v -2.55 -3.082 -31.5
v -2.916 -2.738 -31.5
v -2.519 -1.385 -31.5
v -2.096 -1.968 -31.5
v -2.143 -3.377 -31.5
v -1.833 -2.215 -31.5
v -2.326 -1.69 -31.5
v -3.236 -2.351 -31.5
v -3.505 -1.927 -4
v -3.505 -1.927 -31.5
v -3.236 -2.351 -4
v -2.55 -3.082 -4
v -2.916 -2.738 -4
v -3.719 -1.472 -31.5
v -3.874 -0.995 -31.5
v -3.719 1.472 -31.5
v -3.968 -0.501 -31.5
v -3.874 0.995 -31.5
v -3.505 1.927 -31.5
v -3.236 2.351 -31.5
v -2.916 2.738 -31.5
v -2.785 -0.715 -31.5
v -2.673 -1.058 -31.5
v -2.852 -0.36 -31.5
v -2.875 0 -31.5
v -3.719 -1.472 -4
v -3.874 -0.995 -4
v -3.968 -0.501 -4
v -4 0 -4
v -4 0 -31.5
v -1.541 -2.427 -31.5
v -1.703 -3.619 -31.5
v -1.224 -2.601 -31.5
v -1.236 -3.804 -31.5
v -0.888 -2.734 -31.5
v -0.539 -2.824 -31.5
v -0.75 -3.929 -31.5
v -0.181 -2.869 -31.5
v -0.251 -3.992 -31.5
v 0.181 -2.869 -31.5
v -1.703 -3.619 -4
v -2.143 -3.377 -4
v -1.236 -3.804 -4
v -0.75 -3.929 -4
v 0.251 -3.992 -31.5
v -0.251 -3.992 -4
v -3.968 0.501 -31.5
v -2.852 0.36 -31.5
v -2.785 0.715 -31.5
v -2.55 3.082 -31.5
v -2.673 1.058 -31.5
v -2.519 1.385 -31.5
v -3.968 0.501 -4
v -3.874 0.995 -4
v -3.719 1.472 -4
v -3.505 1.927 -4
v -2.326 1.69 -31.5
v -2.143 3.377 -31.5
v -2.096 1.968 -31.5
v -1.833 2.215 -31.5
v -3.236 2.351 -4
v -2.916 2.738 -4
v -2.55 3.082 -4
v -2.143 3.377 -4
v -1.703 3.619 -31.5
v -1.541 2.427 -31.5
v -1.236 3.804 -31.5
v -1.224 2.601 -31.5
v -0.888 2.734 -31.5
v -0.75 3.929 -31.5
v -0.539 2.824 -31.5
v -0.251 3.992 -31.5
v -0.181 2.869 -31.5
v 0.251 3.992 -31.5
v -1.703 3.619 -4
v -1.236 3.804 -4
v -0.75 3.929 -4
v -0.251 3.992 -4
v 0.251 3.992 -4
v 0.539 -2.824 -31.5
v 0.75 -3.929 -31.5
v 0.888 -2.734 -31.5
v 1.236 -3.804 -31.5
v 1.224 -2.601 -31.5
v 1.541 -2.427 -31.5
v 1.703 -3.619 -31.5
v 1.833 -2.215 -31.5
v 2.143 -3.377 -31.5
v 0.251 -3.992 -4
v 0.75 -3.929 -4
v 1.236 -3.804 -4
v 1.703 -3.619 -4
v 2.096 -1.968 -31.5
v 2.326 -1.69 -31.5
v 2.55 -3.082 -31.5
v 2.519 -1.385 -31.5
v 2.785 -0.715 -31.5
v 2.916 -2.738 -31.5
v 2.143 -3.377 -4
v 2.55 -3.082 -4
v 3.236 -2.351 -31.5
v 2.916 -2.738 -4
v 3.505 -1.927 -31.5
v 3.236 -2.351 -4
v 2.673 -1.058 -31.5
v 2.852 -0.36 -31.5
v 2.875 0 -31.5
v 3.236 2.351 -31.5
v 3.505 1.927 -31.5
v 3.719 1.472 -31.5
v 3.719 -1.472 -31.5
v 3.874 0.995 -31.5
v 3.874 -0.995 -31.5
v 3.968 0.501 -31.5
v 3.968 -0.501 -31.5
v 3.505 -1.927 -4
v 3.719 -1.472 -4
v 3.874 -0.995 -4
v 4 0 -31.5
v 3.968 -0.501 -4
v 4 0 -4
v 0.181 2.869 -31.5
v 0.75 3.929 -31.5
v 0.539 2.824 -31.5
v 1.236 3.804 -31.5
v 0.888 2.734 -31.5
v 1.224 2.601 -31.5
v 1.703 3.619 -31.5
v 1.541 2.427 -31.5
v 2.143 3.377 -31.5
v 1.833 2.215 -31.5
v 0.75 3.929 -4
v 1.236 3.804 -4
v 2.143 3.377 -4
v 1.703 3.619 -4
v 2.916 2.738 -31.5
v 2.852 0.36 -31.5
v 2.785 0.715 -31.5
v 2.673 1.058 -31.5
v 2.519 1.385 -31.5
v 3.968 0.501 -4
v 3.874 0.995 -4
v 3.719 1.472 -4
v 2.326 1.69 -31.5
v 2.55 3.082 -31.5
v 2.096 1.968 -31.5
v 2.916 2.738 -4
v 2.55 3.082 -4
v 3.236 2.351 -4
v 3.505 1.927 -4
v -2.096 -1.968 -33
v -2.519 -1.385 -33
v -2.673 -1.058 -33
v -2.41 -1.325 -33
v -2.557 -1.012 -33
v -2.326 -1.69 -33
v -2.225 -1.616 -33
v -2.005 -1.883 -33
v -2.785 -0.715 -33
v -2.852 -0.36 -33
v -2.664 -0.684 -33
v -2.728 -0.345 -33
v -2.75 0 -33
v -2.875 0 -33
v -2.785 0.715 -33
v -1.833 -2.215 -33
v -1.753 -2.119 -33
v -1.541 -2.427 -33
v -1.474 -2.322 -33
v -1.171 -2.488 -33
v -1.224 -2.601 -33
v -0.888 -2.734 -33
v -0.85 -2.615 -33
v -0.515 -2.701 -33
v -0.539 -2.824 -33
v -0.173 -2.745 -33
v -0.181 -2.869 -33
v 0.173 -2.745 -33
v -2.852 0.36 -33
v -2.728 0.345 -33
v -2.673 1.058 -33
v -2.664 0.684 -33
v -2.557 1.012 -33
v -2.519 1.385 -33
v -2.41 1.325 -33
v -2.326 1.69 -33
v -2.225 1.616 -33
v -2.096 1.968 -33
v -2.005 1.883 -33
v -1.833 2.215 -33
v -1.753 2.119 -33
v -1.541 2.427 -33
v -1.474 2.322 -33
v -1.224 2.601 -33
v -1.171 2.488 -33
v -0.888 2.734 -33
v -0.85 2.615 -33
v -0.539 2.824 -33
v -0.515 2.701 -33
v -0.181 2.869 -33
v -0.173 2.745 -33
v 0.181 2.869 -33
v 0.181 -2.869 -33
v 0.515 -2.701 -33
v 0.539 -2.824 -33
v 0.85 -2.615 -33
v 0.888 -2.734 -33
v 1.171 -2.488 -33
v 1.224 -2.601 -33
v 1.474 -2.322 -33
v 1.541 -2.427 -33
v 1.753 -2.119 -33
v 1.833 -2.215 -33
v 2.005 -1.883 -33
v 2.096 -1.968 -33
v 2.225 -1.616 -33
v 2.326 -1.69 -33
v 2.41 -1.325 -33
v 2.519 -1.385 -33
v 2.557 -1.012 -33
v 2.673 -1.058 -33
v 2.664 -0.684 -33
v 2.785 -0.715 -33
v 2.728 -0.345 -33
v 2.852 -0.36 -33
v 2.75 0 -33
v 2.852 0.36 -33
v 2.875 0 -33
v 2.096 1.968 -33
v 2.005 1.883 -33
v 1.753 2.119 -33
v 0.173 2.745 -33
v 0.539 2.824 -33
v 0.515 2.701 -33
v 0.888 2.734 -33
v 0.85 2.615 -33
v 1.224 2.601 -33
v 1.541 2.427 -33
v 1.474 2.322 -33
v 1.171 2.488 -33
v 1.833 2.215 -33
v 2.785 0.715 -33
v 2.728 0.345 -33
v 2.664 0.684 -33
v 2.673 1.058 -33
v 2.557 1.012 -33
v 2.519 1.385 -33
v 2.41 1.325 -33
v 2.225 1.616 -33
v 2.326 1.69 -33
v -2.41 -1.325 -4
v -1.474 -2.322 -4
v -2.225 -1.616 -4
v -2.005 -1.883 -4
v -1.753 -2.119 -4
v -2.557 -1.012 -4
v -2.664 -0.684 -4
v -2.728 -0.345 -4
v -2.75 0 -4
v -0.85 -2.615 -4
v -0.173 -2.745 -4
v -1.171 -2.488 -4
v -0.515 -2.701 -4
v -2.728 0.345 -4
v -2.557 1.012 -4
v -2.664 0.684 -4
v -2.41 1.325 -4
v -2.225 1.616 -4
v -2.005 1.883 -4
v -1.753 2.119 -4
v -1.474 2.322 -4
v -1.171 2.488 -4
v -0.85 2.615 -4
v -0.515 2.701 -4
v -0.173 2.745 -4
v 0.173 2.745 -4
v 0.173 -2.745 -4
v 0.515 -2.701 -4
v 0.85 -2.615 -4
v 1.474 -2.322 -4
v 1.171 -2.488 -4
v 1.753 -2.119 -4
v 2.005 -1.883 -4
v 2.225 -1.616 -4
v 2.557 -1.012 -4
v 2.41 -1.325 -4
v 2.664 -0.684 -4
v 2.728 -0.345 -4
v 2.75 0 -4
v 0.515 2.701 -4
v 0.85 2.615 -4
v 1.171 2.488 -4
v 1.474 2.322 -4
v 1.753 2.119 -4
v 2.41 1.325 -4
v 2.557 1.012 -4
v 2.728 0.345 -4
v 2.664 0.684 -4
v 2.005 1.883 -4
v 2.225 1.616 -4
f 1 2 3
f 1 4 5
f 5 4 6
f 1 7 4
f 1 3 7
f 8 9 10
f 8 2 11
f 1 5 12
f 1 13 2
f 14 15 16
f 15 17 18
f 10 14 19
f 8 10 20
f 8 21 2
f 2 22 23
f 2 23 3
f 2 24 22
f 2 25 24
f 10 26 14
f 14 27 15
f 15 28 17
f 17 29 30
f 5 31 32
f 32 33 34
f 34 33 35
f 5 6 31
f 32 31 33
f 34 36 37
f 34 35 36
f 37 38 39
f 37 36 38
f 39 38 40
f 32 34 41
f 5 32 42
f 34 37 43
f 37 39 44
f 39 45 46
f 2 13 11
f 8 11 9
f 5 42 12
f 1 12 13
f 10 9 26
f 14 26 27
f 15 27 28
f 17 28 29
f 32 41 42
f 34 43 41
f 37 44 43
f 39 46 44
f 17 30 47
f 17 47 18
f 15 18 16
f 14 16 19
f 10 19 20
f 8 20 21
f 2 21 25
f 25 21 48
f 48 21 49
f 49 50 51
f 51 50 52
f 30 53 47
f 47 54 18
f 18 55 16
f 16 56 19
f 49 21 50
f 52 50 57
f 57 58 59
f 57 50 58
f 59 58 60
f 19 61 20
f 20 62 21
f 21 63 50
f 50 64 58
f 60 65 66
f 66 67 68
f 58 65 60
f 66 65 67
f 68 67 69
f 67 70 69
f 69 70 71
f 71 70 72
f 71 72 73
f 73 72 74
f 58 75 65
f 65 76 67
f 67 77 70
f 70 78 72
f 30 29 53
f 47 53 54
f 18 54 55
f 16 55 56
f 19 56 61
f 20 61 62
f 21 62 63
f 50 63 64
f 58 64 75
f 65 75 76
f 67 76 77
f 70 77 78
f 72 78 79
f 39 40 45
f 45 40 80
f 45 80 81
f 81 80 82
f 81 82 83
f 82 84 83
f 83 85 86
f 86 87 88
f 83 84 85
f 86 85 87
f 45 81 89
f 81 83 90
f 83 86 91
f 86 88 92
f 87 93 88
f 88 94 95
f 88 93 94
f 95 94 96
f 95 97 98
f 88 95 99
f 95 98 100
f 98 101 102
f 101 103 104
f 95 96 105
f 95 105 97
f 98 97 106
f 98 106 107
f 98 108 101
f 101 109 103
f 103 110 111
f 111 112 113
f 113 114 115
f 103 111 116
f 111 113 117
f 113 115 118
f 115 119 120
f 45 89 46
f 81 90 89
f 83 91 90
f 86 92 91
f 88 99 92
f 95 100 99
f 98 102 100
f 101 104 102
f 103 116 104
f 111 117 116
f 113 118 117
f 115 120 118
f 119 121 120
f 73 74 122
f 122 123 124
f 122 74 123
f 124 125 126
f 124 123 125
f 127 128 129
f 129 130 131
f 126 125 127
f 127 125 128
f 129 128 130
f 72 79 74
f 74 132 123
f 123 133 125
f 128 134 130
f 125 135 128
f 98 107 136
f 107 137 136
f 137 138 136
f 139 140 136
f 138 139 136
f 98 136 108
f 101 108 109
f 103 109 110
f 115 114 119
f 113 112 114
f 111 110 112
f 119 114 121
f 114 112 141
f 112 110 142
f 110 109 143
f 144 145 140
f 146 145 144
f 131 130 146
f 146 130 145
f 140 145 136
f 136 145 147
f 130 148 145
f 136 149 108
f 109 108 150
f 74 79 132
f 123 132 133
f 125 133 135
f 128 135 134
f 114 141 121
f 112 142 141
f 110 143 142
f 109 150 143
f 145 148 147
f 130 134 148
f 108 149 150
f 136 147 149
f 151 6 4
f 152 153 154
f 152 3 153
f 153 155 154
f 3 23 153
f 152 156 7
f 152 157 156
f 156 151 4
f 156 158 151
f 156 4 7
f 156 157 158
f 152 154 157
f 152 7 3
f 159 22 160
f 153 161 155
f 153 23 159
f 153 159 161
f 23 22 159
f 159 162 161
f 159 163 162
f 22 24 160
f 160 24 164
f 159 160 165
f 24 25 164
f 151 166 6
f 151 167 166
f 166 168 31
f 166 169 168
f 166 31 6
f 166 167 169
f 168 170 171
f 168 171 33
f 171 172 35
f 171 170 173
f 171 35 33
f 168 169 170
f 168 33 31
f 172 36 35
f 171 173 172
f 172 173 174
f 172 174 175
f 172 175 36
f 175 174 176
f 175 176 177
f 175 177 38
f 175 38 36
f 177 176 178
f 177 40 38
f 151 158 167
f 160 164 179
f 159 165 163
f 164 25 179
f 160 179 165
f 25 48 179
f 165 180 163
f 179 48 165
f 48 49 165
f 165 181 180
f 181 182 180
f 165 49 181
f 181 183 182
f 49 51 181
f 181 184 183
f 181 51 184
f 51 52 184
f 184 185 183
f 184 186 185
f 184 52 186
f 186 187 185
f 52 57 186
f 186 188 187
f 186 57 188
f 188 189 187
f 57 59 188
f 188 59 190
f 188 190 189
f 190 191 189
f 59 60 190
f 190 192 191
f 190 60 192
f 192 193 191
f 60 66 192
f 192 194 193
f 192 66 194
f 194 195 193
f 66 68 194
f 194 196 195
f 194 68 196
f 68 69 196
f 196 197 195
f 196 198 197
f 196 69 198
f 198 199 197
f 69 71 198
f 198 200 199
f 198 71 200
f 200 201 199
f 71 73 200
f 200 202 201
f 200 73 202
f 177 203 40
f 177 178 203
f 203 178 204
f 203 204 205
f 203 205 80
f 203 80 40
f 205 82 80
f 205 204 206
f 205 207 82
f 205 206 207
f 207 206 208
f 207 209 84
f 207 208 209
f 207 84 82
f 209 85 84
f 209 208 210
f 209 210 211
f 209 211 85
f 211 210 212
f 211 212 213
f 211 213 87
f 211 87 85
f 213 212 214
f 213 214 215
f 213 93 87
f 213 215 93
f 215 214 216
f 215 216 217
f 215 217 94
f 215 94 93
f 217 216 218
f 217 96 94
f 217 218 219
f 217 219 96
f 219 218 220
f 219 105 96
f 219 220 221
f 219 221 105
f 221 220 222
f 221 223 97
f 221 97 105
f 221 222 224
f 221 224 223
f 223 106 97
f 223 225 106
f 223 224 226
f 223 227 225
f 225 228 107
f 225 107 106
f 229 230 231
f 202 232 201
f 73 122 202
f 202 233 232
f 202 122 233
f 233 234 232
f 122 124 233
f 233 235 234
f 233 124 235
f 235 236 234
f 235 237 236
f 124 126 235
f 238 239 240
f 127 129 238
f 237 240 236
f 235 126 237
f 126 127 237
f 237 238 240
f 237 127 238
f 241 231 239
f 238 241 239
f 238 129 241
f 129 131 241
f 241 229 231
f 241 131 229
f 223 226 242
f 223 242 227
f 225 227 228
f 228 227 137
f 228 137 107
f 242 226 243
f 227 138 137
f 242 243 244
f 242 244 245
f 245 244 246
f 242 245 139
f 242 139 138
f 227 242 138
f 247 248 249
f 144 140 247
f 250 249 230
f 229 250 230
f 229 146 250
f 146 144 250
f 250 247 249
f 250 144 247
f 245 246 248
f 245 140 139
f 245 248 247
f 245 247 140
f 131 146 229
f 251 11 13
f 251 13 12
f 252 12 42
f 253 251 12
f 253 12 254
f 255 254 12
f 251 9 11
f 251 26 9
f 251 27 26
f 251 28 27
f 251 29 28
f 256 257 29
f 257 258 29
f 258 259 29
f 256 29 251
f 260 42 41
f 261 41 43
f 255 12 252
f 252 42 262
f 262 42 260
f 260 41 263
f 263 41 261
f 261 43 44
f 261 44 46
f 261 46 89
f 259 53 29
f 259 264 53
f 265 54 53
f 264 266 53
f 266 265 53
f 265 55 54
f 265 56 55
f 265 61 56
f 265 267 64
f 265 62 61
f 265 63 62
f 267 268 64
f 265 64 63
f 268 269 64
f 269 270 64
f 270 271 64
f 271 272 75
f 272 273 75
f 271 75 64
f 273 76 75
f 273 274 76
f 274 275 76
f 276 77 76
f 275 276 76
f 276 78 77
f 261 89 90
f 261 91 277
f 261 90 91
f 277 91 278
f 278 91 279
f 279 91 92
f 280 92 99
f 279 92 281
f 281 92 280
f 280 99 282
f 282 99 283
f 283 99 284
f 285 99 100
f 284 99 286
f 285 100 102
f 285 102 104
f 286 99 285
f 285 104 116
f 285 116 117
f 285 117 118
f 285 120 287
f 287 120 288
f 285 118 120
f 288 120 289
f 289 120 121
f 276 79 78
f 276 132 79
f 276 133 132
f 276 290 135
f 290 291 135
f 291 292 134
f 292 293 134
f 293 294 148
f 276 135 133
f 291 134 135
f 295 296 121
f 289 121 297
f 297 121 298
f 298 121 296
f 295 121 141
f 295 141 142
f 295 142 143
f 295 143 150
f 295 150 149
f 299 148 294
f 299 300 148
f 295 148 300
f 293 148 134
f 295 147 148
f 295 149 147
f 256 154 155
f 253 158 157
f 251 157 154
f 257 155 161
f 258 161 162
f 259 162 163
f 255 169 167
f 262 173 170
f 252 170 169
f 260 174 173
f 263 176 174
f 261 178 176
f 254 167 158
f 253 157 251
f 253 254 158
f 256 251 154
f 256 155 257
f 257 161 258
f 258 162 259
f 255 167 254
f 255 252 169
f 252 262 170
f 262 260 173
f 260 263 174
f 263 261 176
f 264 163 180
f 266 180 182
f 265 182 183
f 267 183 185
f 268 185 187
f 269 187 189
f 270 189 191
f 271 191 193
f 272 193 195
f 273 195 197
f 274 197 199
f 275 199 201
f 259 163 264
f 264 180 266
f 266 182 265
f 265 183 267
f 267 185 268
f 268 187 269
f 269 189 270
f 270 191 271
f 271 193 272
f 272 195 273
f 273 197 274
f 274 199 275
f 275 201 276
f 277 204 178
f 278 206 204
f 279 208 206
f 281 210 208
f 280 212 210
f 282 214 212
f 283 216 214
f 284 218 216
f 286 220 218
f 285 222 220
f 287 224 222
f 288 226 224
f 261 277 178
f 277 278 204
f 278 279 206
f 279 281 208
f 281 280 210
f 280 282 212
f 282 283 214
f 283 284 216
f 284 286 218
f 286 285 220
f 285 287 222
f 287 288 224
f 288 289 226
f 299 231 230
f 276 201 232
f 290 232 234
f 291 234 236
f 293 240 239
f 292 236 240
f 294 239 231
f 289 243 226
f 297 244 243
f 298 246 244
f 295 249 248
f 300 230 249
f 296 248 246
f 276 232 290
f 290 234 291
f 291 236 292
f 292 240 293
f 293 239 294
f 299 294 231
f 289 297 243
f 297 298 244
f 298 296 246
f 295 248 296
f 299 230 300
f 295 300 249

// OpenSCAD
$fn = 50;

difference() {
	union() {
		translate(v = [0, 0, -31.5]) {
			cylinder(h = 34.5, r = 4.0);
		}
		#translate(v = [0, 0, -33.0]) {
			cylinder(h = 33, r = 2.875);
		}
	}
	union() {
		translate(v = [0, 0, 0]) {
			rotate(a = [0, 0, 0]) {
				difference() {
					union() {
						translate(v = [0, 0, -4]) {
							linear_extrude(height = 4) {
								polygon(points = [[4.8468, 0.0], [2.4234000000000004, 4.197451927062417], [-2.423399999999999, 4.197451927062417], [-4.8468, 5.935618106107392e-16], [-2.423400000000002, -4.197451927062416], [2.423399999999997, -4.197451927062419]]);
							}
						}
					}
					union();
				}
			}
		}
		#cylinder(h = 3, r = 6.25);
		#translate(v = [0, 0, -100.0]) {
			cylinder(h = 200, r = 2.75);
		}
	}
}
